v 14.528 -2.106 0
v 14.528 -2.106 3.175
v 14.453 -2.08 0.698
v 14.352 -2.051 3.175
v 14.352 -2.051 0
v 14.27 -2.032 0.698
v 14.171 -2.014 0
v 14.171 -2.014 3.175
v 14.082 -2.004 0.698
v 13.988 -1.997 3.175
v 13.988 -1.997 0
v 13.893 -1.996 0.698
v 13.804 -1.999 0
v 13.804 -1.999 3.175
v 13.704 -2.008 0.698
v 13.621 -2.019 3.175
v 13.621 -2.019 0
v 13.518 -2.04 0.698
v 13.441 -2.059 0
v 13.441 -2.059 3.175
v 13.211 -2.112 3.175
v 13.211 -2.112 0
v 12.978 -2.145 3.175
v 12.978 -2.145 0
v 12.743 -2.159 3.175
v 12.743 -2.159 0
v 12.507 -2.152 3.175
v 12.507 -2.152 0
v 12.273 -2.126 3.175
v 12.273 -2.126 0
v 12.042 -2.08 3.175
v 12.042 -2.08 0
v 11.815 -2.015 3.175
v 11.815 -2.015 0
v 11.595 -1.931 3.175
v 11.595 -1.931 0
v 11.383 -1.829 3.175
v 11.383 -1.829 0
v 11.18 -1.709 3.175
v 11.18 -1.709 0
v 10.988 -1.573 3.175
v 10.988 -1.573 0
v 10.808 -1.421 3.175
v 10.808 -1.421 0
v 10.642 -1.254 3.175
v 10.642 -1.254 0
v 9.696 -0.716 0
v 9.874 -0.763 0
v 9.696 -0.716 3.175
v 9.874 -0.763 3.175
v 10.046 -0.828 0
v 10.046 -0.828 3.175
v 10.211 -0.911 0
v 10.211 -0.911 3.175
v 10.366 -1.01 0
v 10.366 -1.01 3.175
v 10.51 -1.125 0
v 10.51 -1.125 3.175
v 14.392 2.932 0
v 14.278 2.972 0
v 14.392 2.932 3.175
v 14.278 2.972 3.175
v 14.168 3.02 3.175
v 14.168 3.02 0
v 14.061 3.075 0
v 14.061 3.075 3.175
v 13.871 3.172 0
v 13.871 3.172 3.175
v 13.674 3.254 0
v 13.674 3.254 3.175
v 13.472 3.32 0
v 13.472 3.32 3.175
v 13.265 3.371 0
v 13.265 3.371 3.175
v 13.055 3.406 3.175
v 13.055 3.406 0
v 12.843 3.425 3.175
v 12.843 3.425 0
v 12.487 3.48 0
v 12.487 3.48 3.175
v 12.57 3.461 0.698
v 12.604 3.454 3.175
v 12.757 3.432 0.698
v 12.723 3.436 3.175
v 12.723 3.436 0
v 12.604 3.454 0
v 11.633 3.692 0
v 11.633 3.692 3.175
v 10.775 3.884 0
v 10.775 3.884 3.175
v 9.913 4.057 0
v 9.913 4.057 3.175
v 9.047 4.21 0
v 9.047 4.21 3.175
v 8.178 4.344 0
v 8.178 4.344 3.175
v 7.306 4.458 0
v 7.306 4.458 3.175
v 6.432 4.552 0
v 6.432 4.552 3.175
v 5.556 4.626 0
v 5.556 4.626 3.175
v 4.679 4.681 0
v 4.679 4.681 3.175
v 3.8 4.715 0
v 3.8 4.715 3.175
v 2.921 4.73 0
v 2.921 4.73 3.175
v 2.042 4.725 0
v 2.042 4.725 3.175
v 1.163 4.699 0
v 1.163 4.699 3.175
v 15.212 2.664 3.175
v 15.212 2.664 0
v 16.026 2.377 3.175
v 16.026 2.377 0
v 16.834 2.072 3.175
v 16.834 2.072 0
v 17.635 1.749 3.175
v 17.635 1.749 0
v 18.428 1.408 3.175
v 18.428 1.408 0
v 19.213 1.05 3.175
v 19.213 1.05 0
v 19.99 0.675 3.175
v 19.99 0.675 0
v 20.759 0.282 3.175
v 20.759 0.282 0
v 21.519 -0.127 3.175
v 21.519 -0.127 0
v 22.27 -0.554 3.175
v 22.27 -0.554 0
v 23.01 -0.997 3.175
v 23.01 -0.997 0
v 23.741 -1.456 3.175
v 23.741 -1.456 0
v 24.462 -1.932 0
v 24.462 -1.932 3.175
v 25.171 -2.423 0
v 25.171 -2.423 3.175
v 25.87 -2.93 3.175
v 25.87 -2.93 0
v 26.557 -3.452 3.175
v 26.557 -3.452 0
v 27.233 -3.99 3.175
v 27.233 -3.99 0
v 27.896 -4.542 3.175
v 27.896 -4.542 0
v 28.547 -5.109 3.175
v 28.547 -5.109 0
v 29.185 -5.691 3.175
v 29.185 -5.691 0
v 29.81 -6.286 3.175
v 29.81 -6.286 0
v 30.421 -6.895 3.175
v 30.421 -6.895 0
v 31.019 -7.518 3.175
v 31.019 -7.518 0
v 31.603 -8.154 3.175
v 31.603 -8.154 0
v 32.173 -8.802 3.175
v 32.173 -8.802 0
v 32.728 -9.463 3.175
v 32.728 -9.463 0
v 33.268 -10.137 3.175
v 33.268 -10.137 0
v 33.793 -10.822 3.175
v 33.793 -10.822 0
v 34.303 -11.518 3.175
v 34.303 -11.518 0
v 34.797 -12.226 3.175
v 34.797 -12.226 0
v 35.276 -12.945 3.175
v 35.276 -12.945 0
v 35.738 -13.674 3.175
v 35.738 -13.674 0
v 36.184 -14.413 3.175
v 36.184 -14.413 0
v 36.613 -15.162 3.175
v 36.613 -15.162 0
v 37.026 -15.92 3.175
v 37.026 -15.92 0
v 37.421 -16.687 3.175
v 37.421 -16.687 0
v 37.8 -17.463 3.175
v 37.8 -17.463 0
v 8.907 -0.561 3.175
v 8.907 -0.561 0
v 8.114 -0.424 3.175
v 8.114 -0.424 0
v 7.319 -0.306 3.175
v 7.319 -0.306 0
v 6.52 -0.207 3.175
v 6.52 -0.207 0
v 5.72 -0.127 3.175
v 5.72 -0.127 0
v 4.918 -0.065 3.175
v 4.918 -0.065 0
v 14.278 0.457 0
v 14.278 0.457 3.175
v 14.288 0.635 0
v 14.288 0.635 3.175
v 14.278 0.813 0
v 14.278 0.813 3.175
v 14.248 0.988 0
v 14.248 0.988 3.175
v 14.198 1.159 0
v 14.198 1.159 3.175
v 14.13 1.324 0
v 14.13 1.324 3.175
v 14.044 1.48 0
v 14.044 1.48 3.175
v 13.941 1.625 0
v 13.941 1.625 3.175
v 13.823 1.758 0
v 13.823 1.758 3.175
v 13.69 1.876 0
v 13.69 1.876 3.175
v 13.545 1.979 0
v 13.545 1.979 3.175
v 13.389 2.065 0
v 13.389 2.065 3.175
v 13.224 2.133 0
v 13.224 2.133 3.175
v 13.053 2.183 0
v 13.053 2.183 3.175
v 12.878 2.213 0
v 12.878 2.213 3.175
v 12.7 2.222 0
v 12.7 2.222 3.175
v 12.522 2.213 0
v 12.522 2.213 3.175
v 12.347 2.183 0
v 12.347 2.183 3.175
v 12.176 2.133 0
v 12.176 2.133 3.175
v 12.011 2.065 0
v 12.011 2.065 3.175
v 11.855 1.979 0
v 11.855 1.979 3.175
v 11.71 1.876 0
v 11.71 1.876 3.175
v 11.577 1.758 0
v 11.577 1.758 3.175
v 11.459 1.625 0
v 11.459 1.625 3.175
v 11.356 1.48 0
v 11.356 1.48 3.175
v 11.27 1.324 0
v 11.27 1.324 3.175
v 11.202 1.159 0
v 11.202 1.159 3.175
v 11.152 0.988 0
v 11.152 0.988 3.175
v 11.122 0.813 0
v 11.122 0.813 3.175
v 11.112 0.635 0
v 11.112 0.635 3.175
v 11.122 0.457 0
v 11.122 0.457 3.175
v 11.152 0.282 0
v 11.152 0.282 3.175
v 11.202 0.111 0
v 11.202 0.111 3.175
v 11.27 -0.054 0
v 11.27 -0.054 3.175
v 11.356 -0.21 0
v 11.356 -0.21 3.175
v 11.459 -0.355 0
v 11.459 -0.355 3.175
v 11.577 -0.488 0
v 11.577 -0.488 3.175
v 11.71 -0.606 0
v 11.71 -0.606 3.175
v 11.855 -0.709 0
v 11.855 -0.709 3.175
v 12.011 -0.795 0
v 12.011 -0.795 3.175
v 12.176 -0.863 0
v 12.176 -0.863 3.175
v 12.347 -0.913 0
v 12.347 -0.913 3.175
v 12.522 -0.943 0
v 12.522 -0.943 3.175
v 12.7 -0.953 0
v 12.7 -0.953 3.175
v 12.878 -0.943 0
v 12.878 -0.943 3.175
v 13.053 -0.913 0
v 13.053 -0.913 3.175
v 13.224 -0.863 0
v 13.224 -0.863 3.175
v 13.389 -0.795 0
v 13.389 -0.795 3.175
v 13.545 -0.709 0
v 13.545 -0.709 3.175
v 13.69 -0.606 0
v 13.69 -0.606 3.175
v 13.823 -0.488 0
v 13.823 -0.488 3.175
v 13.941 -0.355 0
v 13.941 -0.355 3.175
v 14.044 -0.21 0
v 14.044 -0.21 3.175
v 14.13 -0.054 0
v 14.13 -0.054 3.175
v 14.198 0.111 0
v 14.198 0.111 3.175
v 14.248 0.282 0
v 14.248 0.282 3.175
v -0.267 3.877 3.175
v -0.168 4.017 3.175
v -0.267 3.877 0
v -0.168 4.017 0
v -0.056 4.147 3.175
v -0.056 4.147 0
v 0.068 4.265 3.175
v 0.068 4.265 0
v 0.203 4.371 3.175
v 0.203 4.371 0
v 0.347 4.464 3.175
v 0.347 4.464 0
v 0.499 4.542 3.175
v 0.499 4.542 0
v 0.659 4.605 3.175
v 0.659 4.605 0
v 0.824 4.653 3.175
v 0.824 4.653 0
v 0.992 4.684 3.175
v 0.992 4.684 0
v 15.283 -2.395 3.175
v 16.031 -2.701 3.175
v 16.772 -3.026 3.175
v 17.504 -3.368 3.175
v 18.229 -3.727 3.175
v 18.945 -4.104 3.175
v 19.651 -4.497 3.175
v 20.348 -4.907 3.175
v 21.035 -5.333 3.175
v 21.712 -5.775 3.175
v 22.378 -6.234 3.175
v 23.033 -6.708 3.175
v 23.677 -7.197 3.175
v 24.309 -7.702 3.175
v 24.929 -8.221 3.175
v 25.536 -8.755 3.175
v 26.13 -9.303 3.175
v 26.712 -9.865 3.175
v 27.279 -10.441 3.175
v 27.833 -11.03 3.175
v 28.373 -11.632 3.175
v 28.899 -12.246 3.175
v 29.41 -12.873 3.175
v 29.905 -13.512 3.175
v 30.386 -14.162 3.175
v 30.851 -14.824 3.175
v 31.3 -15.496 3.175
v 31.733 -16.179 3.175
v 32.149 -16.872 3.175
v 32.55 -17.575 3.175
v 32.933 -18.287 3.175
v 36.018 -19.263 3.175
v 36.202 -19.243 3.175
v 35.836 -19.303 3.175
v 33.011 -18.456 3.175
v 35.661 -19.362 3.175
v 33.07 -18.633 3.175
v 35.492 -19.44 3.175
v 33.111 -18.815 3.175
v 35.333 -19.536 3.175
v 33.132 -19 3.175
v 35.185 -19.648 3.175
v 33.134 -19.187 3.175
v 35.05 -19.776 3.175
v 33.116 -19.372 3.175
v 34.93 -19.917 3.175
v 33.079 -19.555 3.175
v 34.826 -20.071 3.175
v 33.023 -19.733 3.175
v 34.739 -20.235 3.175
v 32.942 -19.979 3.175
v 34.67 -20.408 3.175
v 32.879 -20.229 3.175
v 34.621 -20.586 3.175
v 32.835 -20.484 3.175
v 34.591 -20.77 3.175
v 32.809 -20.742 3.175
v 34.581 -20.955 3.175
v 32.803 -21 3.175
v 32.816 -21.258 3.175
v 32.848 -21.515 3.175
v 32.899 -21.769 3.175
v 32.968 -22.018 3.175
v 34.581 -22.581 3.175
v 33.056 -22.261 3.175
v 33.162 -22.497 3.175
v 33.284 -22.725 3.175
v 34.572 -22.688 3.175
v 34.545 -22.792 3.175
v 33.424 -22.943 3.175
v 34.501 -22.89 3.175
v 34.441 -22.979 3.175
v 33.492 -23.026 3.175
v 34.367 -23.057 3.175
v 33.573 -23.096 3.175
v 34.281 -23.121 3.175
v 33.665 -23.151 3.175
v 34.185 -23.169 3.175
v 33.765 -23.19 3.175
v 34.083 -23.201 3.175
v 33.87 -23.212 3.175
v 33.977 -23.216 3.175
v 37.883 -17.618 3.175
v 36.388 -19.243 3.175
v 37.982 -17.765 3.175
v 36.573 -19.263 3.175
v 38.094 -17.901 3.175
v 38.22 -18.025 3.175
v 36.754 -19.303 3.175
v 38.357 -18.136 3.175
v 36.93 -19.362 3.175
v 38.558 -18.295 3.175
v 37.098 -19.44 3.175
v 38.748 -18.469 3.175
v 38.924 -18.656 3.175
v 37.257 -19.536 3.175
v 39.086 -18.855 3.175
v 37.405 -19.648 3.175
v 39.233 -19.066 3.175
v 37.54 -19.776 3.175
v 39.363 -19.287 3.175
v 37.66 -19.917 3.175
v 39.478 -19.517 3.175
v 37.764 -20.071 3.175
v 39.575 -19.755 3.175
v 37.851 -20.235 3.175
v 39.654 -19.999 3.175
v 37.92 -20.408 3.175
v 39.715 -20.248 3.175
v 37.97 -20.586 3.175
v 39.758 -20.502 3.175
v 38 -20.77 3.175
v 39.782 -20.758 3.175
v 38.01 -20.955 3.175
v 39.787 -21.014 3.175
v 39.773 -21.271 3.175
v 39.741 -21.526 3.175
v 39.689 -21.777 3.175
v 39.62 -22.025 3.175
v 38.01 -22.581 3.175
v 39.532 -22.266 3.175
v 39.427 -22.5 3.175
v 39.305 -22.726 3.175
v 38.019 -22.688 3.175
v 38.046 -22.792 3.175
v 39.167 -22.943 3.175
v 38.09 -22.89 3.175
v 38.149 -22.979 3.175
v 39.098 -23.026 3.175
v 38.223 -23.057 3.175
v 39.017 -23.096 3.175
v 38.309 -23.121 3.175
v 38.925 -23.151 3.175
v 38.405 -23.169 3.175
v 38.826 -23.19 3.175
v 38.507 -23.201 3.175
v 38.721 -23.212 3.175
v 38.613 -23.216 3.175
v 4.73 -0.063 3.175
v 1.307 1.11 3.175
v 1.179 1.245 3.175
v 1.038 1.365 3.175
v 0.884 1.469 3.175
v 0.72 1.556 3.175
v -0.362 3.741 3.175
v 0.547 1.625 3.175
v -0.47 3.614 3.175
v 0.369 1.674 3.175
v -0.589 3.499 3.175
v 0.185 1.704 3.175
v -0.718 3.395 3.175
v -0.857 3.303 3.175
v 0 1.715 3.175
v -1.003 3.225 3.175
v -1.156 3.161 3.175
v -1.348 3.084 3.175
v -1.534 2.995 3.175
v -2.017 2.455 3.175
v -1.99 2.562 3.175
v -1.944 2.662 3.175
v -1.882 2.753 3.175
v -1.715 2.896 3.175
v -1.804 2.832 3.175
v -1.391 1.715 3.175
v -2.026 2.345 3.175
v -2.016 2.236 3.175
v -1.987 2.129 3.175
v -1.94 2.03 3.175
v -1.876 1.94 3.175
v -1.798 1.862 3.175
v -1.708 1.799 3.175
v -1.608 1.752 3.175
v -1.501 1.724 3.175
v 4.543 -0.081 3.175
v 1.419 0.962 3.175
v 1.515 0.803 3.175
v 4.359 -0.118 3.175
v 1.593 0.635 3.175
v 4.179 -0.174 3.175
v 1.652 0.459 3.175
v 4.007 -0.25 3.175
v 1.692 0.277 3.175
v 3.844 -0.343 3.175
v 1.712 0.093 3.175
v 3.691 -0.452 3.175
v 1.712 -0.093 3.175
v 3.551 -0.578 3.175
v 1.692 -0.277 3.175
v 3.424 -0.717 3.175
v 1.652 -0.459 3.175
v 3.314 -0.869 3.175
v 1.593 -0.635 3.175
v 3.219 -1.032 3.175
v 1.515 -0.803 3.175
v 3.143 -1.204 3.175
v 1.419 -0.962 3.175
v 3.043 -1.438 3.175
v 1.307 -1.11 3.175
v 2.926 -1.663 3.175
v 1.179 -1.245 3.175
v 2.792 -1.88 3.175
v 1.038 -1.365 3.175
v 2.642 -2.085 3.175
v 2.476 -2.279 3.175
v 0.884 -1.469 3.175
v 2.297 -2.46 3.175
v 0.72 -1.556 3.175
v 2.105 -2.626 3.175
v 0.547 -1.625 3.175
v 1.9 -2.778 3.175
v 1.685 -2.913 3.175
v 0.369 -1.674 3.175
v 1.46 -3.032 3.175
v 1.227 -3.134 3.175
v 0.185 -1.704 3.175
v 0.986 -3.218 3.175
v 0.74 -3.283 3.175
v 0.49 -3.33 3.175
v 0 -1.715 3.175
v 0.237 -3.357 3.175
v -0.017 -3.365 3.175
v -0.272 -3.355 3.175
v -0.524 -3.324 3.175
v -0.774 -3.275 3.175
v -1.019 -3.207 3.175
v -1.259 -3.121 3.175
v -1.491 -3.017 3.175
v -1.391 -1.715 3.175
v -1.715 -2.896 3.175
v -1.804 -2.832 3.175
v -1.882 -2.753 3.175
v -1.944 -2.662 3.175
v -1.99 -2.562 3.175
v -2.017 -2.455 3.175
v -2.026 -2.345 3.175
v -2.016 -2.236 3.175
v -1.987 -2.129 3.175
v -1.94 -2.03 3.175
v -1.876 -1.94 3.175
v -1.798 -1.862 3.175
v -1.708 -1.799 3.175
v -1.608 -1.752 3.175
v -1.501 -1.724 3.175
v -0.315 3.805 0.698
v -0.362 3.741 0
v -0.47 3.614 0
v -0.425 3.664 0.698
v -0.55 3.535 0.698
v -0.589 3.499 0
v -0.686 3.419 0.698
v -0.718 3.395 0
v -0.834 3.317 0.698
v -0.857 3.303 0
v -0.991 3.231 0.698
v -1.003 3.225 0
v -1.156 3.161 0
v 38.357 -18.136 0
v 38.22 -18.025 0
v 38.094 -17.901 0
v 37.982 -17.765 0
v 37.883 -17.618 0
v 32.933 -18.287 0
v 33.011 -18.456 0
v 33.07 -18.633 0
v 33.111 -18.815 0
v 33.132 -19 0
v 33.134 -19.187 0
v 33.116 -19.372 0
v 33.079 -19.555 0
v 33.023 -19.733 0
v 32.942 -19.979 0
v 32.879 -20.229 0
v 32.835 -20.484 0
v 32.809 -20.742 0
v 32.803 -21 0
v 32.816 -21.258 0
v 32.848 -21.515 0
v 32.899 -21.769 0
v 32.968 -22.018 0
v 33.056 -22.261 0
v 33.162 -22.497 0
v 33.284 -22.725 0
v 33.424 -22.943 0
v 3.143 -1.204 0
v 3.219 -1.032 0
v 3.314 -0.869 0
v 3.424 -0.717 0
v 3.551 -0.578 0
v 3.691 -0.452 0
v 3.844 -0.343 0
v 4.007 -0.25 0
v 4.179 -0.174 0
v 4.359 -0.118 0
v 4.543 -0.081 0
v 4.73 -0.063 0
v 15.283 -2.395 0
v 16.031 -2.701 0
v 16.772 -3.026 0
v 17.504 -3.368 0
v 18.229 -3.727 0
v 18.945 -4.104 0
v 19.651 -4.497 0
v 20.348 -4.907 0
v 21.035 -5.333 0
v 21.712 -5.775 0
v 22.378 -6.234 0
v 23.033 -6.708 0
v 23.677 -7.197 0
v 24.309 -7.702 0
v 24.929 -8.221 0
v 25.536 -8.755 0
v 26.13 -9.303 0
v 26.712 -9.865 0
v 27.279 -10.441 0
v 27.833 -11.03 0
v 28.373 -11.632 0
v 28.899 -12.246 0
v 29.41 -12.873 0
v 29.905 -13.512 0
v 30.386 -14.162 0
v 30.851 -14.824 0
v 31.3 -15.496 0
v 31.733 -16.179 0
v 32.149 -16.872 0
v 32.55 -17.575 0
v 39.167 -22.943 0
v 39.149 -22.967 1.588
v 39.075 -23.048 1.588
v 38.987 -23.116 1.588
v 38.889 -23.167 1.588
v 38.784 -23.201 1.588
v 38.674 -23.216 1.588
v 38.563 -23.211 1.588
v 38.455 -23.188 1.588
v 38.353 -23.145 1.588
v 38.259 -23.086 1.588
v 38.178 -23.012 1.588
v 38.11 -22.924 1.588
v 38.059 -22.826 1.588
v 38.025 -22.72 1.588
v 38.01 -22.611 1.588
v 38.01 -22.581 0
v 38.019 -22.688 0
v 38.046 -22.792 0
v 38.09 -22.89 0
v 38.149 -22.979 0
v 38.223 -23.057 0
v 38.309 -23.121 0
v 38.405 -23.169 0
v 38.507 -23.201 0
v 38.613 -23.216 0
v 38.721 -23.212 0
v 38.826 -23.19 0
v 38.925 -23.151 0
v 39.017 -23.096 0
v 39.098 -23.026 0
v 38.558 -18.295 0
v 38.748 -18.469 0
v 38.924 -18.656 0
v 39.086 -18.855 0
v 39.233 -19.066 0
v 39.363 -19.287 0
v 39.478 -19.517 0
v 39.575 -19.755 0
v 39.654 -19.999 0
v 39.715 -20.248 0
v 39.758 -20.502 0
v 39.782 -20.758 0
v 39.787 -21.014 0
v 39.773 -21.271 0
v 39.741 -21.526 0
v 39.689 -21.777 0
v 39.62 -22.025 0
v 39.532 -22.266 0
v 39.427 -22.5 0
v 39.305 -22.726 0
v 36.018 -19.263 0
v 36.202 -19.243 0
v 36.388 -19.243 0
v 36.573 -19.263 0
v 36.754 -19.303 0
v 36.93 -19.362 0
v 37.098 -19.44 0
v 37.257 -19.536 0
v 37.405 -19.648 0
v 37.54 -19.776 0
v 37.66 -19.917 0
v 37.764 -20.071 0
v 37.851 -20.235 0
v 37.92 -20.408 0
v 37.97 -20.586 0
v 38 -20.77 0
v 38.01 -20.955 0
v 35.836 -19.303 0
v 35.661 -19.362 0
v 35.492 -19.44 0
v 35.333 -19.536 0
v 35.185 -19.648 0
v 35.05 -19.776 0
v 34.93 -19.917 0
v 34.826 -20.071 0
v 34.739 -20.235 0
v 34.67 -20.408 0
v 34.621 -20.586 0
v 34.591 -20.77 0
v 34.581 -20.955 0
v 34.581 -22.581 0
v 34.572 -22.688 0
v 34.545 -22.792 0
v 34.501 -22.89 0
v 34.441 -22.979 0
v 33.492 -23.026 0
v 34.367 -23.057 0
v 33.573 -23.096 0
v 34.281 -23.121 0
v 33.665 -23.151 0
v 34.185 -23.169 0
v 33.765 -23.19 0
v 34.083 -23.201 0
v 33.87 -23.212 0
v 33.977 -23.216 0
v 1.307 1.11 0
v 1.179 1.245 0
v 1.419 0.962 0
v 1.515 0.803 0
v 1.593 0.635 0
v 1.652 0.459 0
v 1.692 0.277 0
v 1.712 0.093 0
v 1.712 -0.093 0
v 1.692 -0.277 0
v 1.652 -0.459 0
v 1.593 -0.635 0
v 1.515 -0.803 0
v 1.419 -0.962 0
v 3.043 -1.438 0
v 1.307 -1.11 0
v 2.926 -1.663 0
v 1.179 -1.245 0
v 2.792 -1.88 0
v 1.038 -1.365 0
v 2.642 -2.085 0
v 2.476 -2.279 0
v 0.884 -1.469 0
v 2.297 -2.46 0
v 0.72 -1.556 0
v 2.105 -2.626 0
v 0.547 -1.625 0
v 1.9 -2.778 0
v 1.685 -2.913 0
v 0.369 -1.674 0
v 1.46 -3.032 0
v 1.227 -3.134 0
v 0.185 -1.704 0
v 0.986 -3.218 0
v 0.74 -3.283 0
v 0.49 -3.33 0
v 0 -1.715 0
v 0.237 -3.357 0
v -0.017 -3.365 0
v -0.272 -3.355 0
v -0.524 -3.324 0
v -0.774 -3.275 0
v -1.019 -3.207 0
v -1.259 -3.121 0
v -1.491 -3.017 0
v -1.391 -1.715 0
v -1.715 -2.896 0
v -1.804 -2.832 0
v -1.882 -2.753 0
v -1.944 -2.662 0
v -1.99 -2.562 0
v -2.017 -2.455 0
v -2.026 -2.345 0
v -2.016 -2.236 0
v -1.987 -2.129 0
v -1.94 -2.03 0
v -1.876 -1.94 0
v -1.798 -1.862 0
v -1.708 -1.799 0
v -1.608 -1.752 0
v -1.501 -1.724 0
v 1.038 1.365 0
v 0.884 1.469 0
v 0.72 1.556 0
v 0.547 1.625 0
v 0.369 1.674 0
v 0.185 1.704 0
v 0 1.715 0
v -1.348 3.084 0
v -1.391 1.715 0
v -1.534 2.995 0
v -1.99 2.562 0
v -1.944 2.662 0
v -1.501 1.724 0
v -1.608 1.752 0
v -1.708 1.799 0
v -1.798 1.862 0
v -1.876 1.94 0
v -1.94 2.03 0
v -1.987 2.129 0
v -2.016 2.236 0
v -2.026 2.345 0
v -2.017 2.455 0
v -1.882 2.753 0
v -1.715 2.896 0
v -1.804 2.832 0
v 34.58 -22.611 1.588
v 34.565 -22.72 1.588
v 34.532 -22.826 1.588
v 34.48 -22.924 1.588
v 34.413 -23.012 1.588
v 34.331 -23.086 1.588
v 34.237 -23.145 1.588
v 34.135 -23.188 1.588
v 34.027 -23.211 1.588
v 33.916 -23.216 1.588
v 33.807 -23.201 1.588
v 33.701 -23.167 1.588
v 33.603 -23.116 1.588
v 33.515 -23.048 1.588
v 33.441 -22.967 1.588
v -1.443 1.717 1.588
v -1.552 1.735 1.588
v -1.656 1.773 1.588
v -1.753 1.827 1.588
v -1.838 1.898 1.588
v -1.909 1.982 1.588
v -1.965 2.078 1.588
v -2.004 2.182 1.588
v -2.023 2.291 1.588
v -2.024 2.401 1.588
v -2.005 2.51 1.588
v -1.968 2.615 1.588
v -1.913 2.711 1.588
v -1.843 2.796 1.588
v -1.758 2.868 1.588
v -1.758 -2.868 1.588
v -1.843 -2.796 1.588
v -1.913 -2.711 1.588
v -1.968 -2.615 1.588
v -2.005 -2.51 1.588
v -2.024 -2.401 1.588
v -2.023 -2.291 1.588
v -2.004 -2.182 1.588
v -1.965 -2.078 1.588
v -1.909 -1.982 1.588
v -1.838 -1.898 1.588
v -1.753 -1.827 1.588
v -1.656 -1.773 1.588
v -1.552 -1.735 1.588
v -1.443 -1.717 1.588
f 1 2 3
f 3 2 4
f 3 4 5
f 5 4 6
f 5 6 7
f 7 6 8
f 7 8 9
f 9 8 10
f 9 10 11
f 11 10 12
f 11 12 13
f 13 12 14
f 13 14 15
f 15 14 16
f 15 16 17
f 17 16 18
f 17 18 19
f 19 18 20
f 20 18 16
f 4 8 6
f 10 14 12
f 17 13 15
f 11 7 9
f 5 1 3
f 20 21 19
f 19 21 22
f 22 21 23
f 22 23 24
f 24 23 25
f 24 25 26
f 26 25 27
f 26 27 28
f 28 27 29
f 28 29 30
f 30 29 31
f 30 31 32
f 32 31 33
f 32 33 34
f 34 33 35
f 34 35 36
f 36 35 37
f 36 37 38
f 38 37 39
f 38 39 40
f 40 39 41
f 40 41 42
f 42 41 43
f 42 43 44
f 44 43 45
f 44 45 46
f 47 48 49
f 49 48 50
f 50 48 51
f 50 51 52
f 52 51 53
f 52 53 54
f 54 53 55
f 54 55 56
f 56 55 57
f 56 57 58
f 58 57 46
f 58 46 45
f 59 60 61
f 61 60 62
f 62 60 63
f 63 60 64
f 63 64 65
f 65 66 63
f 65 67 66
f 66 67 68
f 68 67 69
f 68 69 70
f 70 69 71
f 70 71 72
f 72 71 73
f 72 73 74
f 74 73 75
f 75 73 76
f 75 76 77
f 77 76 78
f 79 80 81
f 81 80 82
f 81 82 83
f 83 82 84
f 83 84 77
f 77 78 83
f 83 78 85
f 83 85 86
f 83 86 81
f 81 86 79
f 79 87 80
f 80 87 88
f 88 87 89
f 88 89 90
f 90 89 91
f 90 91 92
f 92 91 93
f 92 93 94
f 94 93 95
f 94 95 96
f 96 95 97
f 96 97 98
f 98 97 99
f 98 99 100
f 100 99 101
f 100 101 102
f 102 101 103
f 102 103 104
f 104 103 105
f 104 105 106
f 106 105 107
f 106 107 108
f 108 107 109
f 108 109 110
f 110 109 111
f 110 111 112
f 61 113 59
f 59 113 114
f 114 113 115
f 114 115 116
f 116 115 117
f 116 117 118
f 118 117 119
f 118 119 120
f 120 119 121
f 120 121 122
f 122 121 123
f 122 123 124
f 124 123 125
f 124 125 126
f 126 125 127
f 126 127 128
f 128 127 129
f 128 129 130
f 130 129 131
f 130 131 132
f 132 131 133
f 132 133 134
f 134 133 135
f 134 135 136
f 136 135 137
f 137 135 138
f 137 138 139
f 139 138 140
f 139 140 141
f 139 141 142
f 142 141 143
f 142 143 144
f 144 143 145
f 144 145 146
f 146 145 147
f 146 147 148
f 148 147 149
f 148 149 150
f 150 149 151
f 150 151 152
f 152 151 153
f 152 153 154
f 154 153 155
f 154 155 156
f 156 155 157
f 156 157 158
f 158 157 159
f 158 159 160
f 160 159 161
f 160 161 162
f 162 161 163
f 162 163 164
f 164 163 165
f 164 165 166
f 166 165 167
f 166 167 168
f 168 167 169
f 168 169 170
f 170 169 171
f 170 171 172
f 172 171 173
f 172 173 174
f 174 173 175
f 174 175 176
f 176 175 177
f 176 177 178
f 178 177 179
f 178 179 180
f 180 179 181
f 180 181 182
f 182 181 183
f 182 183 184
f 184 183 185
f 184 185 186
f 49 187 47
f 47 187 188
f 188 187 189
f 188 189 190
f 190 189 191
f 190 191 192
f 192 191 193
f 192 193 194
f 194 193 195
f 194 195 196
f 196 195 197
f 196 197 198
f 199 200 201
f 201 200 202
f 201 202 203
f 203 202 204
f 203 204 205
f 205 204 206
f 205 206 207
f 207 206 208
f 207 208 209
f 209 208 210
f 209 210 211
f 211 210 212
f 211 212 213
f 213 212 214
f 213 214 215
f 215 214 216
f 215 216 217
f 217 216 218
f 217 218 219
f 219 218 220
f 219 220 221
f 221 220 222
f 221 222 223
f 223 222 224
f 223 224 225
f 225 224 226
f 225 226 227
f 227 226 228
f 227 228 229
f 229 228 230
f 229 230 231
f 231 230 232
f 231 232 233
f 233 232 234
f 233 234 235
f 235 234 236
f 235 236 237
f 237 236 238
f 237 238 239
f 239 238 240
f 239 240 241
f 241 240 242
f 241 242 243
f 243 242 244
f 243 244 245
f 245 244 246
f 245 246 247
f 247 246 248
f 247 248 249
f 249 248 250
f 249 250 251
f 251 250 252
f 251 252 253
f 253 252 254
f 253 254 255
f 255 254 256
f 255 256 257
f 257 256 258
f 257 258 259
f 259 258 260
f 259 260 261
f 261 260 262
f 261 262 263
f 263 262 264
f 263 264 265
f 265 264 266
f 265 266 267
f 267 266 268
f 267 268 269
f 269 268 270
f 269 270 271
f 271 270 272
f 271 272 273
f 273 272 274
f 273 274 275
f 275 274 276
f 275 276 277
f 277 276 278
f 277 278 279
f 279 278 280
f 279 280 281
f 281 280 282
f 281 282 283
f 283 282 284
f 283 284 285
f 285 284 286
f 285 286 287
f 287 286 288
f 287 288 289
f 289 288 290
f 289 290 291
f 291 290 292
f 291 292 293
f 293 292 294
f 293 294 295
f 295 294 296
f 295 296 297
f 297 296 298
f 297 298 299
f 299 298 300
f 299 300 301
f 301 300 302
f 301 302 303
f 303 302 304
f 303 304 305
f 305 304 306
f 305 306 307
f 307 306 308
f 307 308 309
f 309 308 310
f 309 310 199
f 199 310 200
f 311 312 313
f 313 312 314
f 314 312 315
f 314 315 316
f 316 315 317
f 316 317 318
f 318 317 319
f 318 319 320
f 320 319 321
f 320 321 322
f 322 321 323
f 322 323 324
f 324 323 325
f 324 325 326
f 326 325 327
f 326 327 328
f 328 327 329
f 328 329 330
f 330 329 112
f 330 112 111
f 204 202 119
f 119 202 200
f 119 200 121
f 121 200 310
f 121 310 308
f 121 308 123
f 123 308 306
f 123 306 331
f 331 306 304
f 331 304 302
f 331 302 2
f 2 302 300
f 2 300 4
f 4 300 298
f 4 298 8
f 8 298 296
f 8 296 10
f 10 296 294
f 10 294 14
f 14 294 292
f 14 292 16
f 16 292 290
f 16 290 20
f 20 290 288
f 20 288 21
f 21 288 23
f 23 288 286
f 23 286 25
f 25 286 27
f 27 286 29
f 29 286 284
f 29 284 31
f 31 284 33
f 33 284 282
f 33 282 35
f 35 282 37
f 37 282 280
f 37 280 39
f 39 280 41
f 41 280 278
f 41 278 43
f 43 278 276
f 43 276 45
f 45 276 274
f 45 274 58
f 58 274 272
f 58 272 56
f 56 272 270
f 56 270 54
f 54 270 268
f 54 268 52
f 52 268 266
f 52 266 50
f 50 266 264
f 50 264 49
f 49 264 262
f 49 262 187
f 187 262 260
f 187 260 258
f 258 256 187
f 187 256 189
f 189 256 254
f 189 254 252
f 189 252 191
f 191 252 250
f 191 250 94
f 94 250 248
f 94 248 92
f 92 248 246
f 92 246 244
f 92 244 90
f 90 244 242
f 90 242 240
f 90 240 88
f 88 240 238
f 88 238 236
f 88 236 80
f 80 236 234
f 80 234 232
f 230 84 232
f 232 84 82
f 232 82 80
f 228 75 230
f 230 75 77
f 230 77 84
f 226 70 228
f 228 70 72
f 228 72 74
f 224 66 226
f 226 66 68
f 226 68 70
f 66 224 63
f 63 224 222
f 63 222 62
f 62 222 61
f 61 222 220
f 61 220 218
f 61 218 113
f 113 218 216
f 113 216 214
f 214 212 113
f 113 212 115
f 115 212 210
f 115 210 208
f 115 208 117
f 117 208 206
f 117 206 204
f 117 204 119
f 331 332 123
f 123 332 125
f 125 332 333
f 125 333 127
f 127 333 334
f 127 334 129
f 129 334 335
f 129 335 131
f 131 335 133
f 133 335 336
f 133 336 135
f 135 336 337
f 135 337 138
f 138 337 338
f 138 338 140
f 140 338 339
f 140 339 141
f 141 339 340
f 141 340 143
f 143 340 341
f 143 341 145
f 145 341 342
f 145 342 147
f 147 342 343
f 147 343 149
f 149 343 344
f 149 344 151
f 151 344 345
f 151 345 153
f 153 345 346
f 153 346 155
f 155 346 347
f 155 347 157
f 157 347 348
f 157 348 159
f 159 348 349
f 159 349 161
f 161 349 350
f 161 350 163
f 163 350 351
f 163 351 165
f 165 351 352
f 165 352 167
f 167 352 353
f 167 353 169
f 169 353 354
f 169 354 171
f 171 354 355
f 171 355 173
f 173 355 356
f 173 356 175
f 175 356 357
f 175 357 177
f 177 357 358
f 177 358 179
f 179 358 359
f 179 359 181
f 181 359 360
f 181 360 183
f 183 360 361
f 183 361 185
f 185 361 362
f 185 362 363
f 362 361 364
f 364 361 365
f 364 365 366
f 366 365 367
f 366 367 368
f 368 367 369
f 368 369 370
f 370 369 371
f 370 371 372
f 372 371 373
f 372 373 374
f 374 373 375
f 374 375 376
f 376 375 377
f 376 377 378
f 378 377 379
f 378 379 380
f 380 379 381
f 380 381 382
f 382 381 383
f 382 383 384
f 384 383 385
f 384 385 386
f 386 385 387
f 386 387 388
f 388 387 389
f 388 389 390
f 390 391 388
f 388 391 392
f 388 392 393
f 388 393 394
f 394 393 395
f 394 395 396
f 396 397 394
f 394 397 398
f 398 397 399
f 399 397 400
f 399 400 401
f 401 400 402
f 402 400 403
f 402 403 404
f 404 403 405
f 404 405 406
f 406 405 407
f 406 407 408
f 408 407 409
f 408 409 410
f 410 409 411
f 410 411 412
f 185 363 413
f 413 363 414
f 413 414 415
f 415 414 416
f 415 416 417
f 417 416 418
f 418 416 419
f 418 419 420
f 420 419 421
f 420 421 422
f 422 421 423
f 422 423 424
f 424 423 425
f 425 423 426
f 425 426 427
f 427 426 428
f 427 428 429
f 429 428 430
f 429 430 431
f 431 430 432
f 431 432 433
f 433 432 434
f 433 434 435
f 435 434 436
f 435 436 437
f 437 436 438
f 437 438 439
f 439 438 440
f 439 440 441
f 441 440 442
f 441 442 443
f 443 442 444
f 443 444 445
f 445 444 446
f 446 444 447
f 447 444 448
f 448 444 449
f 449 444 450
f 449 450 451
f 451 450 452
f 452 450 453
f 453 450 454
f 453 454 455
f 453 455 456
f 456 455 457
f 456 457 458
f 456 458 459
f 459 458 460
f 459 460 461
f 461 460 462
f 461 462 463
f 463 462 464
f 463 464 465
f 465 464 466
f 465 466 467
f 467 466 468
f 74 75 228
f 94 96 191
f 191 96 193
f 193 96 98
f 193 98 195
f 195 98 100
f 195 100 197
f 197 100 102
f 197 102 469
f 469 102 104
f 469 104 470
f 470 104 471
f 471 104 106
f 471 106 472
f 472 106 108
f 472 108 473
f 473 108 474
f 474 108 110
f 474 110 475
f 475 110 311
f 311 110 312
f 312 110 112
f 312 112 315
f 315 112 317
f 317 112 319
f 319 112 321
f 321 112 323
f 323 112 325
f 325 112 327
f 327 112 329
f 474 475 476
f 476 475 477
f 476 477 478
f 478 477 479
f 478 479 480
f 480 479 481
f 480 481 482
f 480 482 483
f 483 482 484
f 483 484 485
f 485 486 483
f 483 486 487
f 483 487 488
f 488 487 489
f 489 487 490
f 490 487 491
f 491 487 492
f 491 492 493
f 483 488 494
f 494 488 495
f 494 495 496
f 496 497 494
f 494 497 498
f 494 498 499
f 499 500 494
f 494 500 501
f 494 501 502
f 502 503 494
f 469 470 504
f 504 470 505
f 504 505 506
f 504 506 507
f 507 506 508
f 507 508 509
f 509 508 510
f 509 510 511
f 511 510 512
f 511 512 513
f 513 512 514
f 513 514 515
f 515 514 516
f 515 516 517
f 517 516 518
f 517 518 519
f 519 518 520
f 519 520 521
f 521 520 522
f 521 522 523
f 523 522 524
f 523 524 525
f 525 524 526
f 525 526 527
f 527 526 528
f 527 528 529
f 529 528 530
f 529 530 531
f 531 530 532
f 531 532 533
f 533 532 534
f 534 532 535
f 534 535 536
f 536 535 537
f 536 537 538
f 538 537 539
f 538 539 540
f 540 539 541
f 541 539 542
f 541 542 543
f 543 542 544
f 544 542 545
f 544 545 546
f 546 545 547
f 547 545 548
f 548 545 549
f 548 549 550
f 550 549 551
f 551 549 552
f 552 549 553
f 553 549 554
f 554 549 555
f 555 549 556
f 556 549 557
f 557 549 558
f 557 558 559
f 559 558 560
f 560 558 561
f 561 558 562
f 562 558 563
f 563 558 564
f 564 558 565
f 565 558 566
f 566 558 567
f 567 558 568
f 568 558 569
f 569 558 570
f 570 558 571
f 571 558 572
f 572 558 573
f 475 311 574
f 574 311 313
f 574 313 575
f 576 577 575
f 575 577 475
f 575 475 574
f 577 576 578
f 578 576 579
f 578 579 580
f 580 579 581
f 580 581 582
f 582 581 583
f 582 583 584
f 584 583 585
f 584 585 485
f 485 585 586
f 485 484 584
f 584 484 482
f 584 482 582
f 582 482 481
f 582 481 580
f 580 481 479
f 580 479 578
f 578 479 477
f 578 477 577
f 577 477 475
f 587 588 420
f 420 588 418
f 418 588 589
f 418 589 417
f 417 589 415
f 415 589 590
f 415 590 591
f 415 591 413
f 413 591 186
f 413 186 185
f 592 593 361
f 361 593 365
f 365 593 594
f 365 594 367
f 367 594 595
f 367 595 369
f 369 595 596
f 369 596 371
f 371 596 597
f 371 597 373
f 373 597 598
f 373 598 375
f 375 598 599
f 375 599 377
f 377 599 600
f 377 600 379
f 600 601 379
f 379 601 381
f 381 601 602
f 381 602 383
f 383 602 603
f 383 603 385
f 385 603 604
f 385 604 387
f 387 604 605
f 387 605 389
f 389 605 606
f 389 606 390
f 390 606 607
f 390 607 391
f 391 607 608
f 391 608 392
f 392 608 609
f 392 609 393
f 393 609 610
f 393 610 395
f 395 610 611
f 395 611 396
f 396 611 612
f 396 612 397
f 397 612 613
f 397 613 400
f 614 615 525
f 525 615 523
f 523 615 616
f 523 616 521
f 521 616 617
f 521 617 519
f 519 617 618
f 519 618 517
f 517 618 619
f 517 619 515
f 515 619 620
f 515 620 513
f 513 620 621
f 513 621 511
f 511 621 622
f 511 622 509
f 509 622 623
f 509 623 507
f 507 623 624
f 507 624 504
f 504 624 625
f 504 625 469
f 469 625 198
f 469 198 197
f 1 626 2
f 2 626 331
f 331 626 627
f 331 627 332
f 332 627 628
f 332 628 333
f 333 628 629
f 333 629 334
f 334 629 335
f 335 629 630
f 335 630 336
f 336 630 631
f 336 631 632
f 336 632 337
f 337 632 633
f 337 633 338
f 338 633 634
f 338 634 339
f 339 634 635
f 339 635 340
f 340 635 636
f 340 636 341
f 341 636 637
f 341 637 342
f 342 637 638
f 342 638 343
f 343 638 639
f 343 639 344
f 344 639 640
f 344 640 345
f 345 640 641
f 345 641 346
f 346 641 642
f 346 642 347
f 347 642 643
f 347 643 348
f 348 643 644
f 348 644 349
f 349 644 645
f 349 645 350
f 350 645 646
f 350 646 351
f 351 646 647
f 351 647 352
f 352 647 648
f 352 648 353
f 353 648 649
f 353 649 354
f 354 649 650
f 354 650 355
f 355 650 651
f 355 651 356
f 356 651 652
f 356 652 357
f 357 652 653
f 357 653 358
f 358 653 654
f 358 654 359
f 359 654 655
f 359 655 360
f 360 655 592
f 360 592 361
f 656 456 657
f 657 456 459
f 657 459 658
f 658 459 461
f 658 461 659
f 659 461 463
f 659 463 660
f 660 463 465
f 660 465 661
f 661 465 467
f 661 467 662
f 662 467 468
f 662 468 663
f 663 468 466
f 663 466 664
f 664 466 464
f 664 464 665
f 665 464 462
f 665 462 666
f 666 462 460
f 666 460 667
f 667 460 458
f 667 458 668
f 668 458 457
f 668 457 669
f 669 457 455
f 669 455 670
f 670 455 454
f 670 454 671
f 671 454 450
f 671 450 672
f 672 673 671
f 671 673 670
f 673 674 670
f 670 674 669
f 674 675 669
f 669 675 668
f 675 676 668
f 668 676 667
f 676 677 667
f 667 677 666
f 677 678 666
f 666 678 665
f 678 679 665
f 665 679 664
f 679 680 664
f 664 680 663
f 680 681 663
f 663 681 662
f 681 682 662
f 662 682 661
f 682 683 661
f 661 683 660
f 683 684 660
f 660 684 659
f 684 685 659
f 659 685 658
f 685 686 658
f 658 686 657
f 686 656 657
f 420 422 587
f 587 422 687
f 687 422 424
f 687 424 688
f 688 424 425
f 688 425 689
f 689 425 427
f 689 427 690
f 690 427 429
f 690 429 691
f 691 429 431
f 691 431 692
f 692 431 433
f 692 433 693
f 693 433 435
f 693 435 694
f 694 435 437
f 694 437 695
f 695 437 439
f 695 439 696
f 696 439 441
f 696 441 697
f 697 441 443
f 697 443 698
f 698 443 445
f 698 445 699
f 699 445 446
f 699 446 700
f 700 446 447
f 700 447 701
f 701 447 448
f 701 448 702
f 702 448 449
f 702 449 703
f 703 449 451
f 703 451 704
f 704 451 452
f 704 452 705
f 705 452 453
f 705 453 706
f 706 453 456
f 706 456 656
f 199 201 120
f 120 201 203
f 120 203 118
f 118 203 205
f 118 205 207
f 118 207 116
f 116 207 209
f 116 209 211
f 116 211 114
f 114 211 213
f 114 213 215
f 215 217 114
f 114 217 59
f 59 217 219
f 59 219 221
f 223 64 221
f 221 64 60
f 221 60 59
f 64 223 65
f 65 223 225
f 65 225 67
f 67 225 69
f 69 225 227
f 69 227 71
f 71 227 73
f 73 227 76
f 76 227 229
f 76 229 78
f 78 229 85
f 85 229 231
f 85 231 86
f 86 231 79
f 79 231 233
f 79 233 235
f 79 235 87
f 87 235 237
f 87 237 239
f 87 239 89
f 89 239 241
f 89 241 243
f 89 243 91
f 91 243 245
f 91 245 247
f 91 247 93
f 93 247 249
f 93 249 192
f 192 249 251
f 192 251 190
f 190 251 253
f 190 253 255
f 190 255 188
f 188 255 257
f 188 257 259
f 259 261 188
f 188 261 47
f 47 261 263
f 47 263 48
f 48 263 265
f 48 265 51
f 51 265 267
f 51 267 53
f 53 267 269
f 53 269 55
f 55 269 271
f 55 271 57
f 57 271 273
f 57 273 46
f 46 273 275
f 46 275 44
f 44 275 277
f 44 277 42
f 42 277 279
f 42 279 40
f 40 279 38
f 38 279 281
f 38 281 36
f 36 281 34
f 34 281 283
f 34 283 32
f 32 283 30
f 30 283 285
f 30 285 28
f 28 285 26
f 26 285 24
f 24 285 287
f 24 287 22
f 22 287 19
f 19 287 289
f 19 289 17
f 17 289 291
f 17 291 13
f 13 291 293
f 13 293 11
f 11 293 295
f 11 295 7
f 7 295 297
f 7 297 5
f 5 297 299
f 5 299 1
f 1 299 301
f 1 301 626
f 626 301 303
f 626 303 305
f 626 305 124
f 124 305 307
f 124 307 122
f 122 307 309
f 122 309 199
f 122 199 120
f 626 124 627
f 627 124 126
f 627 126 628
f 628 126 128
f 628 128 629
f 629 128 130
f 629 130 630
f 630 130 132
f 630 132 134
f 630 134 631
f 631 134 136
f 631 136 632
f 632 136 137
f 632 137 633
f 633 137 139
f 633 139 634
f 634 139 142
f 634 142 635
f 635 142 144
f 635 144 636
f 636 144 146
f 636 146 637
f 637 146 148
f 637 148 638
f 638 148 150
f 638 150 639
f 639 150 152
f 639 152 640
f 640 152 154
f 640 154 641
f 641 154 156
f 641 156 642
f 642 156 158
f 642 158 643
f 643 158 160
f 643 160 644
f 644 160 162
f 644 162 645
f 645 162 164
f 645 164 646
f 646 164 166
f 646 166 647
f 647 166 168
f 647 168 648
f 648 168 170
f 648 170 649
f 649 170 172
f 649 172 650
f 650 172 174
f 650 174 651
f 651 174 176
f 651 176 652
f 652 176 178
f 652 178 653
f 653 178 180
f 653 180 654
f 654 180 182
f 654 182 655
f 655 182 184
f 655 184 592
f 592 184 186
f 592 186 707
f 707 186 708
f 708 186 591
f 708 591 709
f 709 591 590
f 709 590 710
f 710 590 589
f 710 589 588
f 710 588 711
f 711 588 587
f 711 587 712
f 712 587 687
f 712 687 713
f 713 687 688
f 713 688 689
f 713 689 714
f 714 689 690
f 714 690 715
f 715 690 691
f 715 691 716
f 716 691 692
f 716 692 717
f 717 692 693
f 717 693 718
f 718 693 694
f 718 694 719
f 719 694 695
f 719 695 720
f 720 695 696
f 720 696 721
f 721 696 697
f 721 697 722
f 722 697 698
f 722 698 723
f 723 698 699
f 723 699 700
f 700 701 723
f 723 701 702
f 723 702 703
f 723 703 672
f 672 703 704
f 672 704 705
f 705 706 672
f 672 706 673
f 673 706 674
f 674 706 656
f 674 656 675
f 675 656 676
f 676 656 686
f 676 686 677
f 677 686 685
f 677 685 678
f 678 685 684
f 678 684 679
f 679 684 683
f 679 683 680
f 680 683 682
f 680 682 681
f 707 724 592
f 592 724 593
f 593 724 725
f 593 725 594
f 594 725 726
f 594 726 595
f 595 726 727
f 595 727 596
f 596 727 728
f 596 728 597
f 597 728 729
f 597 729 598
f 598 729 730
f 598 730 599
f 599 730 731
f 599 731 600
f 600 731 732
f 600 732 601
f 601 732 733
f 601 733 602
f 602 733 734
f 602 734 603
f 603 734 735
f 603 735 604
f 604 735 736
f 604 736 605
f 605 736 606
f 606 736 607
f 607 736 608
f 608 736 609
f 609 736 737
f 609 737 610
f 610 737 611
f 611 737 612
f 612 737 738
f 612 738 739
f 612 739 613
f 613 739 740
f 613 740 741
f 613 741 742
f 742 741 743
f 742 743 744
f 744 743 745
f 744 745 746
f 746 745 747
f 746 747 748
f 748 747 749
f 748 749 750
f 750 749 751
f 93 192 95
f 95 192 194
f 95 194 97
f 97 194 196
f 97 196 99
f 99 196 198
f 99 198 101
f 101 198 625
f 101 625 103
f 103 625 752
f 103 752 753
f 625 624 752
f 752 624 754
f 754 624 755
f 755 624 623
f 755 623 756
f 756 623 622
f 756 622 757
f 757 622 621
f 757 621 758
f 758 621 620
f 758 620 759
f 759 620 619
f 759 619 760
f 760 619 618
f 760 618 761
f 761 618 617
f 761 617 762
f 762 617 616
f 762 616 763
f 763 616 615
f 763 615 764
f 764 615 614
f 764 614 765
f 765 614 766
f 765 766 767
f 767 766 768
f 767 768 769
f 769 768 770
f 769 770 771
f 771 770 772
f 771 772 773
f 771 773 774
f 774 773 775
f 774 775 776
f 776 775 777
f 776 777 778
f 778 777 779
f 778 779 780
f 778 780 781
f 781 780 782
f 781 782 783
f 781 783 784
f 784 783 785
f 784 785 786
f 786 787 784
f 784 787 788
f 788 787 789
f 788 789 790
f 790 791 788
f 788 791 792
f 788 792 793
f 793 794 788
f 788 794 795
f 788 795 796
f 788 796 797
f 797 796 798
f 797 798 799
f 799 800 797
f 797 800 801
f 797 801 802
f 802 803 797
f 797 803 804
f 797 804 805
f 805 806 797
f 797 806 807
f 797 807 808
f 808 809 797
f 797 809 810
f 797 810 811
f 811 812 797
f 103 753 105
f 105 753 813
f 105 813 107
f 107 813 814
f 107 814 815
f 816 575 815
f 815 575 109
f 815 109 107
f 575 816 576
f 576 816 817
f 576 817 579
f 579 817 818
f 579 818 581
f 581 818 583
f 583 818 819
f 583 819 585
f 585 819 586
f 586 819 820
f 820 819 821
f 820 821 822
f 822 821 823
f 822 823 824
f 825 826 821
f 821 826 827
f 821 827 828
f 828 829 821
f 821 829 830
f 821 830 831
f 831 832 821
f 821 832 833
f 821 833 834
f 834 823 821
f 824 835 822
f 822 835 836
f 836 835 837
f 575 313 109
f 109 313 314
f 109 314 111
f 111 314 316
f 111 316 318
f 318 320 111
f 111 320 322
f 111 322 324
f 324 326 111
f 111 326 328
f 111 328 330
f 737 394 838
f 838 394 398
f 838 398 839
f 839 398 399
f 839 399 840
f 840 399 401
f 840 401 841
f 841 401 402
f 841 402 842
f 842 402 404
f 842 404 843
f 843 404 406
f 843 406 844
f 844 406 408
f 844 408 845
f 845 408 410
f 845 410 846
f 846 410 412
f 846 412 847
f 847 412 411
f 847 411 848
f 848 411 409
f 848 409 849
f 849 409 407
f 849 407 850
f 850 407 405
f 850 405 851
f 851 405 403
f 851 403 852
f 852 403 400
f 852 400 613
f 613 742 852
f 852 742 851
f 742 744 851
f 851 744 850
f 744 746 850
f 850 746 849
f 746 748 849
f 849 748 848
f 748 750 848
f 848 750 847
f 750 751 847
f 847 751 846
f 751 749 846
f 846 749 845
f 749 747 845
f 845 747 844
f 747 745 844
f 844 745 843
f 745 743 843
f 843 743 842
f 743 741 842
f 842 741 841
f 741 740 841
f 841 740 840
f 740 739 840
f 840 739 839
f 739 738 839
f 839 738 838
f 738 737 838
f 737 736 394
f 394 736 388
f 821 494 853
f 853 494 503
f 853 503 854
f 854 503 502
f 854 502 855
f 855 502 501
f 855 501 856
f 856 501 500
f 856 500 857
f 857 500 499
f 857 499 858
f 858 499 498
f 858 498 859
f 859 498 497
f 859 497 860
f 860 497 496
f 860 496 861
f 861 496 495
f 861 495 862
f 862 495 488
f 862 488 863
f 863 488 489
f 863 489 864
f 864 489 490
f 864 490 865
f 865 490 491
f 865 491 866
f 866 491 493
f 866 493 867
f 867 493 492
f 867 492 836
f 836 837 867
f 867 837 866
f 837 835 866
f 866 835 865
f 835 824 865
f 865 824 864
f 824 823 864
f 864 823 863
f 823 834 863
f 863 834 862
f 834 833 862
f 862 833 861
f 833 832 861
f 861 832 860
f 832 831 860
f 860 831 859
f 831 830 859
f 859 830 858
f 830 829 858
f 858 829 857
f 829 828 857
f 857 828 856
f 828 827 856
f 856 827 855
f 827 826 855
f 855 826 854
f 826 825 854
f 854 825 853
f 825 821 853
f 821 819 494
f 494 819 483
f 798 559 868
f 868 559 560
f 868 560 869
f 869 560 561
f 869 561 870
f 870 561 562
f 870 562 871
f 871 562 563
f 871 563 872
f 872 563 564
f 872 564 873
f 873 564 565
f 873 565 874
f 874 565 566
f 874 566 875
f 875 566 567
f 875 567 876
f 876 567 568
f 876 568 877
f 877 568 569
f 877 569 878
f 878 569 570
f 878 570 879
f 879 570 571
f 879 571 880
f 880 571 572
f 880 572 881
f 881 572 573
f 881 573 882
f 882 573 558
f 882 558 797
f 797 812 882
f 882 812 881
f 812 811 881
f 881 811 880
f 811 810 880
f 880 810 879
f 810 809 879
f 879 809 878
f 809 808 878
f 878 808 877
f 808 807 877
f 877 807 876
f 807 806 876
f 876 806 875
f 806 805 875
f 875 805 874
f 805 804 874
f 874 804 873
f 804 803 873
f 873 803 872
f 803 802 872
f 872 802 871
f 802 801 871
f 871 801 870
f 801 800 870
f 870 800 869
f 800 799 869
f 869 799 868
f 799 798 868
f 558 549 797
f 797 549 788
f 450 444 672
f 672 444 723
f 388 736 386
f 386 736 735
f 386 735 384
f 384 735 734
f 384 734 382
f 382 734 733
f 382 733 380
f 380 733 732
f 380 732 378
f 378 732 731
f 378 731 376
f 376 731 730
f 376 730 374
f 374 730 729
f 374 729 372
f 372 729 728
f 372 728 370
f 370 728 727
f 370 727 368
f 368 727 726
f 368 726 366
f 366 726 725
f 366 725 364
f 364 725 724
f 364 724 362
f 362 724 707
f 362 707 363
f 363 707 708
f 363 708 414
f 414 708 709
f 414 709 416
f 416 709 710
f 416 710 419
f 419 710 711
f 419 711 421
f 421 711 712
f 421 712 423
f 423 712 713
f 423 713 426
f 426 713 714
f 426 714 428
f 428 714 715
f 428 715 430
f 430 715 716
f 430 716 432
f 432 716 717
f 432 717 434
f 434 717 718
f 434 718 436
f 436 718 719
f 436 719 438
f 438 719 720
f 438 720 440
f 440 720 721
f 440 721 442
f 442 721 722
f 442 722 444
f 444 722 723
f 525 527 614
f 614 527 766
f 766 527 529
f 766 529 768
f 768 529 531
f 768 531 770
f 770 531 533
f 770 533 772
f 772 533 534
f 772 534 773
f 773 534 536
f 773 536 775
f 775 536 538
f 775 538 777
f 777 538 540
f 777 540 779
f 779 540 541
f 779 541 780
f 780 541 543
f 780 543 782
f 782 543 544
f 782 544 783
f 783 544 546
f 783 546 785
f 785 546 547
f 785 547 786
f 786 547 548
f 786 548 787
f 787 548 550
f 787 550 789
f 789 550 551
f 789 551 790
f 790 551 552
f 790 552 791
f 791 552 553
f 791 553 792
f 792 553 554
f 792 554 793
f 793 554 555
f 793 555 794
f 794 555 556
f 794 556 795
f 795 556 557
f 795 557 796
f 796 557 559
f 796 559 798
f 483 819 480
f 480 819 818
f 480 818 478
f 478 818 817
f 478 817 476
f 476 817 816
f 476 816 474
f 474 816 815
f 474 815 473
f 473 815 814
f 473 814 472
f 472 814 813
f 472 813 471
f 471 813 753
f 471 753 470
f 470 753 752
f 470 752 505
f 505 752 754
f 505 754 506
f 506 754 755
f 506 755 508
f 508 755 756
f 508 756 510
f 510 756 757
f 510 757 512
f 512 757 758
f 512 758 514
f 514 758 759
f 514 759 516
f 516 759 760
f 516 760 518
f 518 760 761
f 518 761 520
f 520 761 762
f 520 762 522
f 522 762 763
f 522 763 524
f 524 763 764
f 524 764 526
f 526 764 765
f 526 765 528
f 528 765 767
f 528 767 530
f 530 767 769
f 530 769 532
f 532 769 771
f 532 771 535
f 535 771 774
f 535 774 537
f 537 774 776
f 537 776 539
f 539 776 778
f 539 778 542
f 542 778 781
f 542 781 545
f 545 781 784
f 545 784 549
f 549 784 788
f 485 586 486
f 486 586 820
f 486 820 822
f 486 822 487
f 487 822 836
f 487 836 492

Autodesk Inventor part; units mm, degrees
ref_plane "YZ Plane" through (0, 0, 0) normal (1, 0, 0) x (0, 1, 0)
ref_plane "XZ Plane" through (0, 0, 0) normal (0, 1, 0) x (-1, 0, 0)
ref_plane "XY Plane" through (0, 0, 0) normal (0, 0, 1) x (1, 0, 0)
sketch "Sketch1" plane through (0, 0, 0) normal (0, 0, 1) x (1, 0, 0)
  line L0 (0, 0) -> (69.8506, 0) construction
  circle A0 centre (0, -41.91) radius 47.625 construction
  arc A1 (0, -1.7145) -> (0, 1.7145) centre (0, 0) ccw
  arc A2 (-2.896, -1.7145) -> (-2.896, 1.7145) centre (0, 0) ccw
  line L1 (0, 3.3655) -> (0, 4.6355)
  arc A3 (38.0096, -20.955) -> (34.5806, -20.955) centre (36.2951, -20.955) ccw
  arc A4 (38.0096, -23.9977) -> (34.5806, -23.9977) centre (36.2951, -20.955) ccw
  arc A5 (38.0096, -17.9123) -> (0, 4.6355) centre (2.7126, -34.1027) ccw
  arc A6 (33.341, -19.092) -> (3.3655, 0) centre (2.7126, -34.1027) ccw
  line L2 (0, 1.7145) -> (-2.896, 1.7145)
  line L3 (0, -1.7145) -> (-2.896, -1.7145)
  line L4 (34.5806, -20.955) -> (34.5806, -23.9977)
  line L5 (38.0096, -20.955) -> (38.0096, -23.9977)
  dimension "d0" = 41.91
  dimension "d2" = 30
  dimension "d3" = 95.25
  dimension "d4" = 41.91
  dimension "d5" = 41.91
  dimension "d6" = 3.429
  dimension "d7" = 6.731
  dimension "d8" = 1.27
  dimension "d9" = 3.429
  dimension "d10" = 6.985
extrude "Extrusion1" add sketch "Sketch1" along normal blind 3.175
fillet "Fillet1" radius 0.635 4 edges at (-2.896, -1.7145, 1.5875) (-2.896, 1.7145, 1.5875) (34.5806, -23.9977, 1.5875) (38.0096, -23.9977, 1.5875)
fillet "Fillet2" radius 1.778 5 edges at (0, 3.3655, 1.5875) (0, 4.6355, 1.5875) (3.3655, 0, 1.5875) (33.341, -19.092, 1.5875) (38.0096, -17.9123, 1.5875)
sketch "Sketch2" plane through (0, 0, 3.175) normal (0, 0, 1) x (1, 0, 0)
  circle A0 centre (12.7, 0.635) radius 1.5875
  point P0 (0, 0)
  dimension "d15" = 3.175
  dimension "d16" = 12.7
  dimension "d17" = 0.635
extrude "Extrusion2" cut sketch "Sketch2" against normal through all
sketch "Sketch3" plane through (0, 0, 3.175) normal (0, 0, 1) x (1, 0, 0)
  circle A0 centre (12.7, 0.635) radius 1.5875 projected
  circle A1 centre (12.7, 0.635) radius 2.794
  point P0 (0, 0)
  dimension "d20" = 5.588
extrude "Extrusion3" add sketch "Sketch3" against normal blind 3.175
fillet "Fillet3" radius 1.778 4 edges at (14.1994, 2.9926, 1.5875) (12.6817, 3.4289, 1.5875) (13.9092, -1.8838, 1.5875) (10.3377, -0.857, 1.5875)
properties part number "HallEffectSpoolSensorMount3Brace" material "ABS Plastic"
